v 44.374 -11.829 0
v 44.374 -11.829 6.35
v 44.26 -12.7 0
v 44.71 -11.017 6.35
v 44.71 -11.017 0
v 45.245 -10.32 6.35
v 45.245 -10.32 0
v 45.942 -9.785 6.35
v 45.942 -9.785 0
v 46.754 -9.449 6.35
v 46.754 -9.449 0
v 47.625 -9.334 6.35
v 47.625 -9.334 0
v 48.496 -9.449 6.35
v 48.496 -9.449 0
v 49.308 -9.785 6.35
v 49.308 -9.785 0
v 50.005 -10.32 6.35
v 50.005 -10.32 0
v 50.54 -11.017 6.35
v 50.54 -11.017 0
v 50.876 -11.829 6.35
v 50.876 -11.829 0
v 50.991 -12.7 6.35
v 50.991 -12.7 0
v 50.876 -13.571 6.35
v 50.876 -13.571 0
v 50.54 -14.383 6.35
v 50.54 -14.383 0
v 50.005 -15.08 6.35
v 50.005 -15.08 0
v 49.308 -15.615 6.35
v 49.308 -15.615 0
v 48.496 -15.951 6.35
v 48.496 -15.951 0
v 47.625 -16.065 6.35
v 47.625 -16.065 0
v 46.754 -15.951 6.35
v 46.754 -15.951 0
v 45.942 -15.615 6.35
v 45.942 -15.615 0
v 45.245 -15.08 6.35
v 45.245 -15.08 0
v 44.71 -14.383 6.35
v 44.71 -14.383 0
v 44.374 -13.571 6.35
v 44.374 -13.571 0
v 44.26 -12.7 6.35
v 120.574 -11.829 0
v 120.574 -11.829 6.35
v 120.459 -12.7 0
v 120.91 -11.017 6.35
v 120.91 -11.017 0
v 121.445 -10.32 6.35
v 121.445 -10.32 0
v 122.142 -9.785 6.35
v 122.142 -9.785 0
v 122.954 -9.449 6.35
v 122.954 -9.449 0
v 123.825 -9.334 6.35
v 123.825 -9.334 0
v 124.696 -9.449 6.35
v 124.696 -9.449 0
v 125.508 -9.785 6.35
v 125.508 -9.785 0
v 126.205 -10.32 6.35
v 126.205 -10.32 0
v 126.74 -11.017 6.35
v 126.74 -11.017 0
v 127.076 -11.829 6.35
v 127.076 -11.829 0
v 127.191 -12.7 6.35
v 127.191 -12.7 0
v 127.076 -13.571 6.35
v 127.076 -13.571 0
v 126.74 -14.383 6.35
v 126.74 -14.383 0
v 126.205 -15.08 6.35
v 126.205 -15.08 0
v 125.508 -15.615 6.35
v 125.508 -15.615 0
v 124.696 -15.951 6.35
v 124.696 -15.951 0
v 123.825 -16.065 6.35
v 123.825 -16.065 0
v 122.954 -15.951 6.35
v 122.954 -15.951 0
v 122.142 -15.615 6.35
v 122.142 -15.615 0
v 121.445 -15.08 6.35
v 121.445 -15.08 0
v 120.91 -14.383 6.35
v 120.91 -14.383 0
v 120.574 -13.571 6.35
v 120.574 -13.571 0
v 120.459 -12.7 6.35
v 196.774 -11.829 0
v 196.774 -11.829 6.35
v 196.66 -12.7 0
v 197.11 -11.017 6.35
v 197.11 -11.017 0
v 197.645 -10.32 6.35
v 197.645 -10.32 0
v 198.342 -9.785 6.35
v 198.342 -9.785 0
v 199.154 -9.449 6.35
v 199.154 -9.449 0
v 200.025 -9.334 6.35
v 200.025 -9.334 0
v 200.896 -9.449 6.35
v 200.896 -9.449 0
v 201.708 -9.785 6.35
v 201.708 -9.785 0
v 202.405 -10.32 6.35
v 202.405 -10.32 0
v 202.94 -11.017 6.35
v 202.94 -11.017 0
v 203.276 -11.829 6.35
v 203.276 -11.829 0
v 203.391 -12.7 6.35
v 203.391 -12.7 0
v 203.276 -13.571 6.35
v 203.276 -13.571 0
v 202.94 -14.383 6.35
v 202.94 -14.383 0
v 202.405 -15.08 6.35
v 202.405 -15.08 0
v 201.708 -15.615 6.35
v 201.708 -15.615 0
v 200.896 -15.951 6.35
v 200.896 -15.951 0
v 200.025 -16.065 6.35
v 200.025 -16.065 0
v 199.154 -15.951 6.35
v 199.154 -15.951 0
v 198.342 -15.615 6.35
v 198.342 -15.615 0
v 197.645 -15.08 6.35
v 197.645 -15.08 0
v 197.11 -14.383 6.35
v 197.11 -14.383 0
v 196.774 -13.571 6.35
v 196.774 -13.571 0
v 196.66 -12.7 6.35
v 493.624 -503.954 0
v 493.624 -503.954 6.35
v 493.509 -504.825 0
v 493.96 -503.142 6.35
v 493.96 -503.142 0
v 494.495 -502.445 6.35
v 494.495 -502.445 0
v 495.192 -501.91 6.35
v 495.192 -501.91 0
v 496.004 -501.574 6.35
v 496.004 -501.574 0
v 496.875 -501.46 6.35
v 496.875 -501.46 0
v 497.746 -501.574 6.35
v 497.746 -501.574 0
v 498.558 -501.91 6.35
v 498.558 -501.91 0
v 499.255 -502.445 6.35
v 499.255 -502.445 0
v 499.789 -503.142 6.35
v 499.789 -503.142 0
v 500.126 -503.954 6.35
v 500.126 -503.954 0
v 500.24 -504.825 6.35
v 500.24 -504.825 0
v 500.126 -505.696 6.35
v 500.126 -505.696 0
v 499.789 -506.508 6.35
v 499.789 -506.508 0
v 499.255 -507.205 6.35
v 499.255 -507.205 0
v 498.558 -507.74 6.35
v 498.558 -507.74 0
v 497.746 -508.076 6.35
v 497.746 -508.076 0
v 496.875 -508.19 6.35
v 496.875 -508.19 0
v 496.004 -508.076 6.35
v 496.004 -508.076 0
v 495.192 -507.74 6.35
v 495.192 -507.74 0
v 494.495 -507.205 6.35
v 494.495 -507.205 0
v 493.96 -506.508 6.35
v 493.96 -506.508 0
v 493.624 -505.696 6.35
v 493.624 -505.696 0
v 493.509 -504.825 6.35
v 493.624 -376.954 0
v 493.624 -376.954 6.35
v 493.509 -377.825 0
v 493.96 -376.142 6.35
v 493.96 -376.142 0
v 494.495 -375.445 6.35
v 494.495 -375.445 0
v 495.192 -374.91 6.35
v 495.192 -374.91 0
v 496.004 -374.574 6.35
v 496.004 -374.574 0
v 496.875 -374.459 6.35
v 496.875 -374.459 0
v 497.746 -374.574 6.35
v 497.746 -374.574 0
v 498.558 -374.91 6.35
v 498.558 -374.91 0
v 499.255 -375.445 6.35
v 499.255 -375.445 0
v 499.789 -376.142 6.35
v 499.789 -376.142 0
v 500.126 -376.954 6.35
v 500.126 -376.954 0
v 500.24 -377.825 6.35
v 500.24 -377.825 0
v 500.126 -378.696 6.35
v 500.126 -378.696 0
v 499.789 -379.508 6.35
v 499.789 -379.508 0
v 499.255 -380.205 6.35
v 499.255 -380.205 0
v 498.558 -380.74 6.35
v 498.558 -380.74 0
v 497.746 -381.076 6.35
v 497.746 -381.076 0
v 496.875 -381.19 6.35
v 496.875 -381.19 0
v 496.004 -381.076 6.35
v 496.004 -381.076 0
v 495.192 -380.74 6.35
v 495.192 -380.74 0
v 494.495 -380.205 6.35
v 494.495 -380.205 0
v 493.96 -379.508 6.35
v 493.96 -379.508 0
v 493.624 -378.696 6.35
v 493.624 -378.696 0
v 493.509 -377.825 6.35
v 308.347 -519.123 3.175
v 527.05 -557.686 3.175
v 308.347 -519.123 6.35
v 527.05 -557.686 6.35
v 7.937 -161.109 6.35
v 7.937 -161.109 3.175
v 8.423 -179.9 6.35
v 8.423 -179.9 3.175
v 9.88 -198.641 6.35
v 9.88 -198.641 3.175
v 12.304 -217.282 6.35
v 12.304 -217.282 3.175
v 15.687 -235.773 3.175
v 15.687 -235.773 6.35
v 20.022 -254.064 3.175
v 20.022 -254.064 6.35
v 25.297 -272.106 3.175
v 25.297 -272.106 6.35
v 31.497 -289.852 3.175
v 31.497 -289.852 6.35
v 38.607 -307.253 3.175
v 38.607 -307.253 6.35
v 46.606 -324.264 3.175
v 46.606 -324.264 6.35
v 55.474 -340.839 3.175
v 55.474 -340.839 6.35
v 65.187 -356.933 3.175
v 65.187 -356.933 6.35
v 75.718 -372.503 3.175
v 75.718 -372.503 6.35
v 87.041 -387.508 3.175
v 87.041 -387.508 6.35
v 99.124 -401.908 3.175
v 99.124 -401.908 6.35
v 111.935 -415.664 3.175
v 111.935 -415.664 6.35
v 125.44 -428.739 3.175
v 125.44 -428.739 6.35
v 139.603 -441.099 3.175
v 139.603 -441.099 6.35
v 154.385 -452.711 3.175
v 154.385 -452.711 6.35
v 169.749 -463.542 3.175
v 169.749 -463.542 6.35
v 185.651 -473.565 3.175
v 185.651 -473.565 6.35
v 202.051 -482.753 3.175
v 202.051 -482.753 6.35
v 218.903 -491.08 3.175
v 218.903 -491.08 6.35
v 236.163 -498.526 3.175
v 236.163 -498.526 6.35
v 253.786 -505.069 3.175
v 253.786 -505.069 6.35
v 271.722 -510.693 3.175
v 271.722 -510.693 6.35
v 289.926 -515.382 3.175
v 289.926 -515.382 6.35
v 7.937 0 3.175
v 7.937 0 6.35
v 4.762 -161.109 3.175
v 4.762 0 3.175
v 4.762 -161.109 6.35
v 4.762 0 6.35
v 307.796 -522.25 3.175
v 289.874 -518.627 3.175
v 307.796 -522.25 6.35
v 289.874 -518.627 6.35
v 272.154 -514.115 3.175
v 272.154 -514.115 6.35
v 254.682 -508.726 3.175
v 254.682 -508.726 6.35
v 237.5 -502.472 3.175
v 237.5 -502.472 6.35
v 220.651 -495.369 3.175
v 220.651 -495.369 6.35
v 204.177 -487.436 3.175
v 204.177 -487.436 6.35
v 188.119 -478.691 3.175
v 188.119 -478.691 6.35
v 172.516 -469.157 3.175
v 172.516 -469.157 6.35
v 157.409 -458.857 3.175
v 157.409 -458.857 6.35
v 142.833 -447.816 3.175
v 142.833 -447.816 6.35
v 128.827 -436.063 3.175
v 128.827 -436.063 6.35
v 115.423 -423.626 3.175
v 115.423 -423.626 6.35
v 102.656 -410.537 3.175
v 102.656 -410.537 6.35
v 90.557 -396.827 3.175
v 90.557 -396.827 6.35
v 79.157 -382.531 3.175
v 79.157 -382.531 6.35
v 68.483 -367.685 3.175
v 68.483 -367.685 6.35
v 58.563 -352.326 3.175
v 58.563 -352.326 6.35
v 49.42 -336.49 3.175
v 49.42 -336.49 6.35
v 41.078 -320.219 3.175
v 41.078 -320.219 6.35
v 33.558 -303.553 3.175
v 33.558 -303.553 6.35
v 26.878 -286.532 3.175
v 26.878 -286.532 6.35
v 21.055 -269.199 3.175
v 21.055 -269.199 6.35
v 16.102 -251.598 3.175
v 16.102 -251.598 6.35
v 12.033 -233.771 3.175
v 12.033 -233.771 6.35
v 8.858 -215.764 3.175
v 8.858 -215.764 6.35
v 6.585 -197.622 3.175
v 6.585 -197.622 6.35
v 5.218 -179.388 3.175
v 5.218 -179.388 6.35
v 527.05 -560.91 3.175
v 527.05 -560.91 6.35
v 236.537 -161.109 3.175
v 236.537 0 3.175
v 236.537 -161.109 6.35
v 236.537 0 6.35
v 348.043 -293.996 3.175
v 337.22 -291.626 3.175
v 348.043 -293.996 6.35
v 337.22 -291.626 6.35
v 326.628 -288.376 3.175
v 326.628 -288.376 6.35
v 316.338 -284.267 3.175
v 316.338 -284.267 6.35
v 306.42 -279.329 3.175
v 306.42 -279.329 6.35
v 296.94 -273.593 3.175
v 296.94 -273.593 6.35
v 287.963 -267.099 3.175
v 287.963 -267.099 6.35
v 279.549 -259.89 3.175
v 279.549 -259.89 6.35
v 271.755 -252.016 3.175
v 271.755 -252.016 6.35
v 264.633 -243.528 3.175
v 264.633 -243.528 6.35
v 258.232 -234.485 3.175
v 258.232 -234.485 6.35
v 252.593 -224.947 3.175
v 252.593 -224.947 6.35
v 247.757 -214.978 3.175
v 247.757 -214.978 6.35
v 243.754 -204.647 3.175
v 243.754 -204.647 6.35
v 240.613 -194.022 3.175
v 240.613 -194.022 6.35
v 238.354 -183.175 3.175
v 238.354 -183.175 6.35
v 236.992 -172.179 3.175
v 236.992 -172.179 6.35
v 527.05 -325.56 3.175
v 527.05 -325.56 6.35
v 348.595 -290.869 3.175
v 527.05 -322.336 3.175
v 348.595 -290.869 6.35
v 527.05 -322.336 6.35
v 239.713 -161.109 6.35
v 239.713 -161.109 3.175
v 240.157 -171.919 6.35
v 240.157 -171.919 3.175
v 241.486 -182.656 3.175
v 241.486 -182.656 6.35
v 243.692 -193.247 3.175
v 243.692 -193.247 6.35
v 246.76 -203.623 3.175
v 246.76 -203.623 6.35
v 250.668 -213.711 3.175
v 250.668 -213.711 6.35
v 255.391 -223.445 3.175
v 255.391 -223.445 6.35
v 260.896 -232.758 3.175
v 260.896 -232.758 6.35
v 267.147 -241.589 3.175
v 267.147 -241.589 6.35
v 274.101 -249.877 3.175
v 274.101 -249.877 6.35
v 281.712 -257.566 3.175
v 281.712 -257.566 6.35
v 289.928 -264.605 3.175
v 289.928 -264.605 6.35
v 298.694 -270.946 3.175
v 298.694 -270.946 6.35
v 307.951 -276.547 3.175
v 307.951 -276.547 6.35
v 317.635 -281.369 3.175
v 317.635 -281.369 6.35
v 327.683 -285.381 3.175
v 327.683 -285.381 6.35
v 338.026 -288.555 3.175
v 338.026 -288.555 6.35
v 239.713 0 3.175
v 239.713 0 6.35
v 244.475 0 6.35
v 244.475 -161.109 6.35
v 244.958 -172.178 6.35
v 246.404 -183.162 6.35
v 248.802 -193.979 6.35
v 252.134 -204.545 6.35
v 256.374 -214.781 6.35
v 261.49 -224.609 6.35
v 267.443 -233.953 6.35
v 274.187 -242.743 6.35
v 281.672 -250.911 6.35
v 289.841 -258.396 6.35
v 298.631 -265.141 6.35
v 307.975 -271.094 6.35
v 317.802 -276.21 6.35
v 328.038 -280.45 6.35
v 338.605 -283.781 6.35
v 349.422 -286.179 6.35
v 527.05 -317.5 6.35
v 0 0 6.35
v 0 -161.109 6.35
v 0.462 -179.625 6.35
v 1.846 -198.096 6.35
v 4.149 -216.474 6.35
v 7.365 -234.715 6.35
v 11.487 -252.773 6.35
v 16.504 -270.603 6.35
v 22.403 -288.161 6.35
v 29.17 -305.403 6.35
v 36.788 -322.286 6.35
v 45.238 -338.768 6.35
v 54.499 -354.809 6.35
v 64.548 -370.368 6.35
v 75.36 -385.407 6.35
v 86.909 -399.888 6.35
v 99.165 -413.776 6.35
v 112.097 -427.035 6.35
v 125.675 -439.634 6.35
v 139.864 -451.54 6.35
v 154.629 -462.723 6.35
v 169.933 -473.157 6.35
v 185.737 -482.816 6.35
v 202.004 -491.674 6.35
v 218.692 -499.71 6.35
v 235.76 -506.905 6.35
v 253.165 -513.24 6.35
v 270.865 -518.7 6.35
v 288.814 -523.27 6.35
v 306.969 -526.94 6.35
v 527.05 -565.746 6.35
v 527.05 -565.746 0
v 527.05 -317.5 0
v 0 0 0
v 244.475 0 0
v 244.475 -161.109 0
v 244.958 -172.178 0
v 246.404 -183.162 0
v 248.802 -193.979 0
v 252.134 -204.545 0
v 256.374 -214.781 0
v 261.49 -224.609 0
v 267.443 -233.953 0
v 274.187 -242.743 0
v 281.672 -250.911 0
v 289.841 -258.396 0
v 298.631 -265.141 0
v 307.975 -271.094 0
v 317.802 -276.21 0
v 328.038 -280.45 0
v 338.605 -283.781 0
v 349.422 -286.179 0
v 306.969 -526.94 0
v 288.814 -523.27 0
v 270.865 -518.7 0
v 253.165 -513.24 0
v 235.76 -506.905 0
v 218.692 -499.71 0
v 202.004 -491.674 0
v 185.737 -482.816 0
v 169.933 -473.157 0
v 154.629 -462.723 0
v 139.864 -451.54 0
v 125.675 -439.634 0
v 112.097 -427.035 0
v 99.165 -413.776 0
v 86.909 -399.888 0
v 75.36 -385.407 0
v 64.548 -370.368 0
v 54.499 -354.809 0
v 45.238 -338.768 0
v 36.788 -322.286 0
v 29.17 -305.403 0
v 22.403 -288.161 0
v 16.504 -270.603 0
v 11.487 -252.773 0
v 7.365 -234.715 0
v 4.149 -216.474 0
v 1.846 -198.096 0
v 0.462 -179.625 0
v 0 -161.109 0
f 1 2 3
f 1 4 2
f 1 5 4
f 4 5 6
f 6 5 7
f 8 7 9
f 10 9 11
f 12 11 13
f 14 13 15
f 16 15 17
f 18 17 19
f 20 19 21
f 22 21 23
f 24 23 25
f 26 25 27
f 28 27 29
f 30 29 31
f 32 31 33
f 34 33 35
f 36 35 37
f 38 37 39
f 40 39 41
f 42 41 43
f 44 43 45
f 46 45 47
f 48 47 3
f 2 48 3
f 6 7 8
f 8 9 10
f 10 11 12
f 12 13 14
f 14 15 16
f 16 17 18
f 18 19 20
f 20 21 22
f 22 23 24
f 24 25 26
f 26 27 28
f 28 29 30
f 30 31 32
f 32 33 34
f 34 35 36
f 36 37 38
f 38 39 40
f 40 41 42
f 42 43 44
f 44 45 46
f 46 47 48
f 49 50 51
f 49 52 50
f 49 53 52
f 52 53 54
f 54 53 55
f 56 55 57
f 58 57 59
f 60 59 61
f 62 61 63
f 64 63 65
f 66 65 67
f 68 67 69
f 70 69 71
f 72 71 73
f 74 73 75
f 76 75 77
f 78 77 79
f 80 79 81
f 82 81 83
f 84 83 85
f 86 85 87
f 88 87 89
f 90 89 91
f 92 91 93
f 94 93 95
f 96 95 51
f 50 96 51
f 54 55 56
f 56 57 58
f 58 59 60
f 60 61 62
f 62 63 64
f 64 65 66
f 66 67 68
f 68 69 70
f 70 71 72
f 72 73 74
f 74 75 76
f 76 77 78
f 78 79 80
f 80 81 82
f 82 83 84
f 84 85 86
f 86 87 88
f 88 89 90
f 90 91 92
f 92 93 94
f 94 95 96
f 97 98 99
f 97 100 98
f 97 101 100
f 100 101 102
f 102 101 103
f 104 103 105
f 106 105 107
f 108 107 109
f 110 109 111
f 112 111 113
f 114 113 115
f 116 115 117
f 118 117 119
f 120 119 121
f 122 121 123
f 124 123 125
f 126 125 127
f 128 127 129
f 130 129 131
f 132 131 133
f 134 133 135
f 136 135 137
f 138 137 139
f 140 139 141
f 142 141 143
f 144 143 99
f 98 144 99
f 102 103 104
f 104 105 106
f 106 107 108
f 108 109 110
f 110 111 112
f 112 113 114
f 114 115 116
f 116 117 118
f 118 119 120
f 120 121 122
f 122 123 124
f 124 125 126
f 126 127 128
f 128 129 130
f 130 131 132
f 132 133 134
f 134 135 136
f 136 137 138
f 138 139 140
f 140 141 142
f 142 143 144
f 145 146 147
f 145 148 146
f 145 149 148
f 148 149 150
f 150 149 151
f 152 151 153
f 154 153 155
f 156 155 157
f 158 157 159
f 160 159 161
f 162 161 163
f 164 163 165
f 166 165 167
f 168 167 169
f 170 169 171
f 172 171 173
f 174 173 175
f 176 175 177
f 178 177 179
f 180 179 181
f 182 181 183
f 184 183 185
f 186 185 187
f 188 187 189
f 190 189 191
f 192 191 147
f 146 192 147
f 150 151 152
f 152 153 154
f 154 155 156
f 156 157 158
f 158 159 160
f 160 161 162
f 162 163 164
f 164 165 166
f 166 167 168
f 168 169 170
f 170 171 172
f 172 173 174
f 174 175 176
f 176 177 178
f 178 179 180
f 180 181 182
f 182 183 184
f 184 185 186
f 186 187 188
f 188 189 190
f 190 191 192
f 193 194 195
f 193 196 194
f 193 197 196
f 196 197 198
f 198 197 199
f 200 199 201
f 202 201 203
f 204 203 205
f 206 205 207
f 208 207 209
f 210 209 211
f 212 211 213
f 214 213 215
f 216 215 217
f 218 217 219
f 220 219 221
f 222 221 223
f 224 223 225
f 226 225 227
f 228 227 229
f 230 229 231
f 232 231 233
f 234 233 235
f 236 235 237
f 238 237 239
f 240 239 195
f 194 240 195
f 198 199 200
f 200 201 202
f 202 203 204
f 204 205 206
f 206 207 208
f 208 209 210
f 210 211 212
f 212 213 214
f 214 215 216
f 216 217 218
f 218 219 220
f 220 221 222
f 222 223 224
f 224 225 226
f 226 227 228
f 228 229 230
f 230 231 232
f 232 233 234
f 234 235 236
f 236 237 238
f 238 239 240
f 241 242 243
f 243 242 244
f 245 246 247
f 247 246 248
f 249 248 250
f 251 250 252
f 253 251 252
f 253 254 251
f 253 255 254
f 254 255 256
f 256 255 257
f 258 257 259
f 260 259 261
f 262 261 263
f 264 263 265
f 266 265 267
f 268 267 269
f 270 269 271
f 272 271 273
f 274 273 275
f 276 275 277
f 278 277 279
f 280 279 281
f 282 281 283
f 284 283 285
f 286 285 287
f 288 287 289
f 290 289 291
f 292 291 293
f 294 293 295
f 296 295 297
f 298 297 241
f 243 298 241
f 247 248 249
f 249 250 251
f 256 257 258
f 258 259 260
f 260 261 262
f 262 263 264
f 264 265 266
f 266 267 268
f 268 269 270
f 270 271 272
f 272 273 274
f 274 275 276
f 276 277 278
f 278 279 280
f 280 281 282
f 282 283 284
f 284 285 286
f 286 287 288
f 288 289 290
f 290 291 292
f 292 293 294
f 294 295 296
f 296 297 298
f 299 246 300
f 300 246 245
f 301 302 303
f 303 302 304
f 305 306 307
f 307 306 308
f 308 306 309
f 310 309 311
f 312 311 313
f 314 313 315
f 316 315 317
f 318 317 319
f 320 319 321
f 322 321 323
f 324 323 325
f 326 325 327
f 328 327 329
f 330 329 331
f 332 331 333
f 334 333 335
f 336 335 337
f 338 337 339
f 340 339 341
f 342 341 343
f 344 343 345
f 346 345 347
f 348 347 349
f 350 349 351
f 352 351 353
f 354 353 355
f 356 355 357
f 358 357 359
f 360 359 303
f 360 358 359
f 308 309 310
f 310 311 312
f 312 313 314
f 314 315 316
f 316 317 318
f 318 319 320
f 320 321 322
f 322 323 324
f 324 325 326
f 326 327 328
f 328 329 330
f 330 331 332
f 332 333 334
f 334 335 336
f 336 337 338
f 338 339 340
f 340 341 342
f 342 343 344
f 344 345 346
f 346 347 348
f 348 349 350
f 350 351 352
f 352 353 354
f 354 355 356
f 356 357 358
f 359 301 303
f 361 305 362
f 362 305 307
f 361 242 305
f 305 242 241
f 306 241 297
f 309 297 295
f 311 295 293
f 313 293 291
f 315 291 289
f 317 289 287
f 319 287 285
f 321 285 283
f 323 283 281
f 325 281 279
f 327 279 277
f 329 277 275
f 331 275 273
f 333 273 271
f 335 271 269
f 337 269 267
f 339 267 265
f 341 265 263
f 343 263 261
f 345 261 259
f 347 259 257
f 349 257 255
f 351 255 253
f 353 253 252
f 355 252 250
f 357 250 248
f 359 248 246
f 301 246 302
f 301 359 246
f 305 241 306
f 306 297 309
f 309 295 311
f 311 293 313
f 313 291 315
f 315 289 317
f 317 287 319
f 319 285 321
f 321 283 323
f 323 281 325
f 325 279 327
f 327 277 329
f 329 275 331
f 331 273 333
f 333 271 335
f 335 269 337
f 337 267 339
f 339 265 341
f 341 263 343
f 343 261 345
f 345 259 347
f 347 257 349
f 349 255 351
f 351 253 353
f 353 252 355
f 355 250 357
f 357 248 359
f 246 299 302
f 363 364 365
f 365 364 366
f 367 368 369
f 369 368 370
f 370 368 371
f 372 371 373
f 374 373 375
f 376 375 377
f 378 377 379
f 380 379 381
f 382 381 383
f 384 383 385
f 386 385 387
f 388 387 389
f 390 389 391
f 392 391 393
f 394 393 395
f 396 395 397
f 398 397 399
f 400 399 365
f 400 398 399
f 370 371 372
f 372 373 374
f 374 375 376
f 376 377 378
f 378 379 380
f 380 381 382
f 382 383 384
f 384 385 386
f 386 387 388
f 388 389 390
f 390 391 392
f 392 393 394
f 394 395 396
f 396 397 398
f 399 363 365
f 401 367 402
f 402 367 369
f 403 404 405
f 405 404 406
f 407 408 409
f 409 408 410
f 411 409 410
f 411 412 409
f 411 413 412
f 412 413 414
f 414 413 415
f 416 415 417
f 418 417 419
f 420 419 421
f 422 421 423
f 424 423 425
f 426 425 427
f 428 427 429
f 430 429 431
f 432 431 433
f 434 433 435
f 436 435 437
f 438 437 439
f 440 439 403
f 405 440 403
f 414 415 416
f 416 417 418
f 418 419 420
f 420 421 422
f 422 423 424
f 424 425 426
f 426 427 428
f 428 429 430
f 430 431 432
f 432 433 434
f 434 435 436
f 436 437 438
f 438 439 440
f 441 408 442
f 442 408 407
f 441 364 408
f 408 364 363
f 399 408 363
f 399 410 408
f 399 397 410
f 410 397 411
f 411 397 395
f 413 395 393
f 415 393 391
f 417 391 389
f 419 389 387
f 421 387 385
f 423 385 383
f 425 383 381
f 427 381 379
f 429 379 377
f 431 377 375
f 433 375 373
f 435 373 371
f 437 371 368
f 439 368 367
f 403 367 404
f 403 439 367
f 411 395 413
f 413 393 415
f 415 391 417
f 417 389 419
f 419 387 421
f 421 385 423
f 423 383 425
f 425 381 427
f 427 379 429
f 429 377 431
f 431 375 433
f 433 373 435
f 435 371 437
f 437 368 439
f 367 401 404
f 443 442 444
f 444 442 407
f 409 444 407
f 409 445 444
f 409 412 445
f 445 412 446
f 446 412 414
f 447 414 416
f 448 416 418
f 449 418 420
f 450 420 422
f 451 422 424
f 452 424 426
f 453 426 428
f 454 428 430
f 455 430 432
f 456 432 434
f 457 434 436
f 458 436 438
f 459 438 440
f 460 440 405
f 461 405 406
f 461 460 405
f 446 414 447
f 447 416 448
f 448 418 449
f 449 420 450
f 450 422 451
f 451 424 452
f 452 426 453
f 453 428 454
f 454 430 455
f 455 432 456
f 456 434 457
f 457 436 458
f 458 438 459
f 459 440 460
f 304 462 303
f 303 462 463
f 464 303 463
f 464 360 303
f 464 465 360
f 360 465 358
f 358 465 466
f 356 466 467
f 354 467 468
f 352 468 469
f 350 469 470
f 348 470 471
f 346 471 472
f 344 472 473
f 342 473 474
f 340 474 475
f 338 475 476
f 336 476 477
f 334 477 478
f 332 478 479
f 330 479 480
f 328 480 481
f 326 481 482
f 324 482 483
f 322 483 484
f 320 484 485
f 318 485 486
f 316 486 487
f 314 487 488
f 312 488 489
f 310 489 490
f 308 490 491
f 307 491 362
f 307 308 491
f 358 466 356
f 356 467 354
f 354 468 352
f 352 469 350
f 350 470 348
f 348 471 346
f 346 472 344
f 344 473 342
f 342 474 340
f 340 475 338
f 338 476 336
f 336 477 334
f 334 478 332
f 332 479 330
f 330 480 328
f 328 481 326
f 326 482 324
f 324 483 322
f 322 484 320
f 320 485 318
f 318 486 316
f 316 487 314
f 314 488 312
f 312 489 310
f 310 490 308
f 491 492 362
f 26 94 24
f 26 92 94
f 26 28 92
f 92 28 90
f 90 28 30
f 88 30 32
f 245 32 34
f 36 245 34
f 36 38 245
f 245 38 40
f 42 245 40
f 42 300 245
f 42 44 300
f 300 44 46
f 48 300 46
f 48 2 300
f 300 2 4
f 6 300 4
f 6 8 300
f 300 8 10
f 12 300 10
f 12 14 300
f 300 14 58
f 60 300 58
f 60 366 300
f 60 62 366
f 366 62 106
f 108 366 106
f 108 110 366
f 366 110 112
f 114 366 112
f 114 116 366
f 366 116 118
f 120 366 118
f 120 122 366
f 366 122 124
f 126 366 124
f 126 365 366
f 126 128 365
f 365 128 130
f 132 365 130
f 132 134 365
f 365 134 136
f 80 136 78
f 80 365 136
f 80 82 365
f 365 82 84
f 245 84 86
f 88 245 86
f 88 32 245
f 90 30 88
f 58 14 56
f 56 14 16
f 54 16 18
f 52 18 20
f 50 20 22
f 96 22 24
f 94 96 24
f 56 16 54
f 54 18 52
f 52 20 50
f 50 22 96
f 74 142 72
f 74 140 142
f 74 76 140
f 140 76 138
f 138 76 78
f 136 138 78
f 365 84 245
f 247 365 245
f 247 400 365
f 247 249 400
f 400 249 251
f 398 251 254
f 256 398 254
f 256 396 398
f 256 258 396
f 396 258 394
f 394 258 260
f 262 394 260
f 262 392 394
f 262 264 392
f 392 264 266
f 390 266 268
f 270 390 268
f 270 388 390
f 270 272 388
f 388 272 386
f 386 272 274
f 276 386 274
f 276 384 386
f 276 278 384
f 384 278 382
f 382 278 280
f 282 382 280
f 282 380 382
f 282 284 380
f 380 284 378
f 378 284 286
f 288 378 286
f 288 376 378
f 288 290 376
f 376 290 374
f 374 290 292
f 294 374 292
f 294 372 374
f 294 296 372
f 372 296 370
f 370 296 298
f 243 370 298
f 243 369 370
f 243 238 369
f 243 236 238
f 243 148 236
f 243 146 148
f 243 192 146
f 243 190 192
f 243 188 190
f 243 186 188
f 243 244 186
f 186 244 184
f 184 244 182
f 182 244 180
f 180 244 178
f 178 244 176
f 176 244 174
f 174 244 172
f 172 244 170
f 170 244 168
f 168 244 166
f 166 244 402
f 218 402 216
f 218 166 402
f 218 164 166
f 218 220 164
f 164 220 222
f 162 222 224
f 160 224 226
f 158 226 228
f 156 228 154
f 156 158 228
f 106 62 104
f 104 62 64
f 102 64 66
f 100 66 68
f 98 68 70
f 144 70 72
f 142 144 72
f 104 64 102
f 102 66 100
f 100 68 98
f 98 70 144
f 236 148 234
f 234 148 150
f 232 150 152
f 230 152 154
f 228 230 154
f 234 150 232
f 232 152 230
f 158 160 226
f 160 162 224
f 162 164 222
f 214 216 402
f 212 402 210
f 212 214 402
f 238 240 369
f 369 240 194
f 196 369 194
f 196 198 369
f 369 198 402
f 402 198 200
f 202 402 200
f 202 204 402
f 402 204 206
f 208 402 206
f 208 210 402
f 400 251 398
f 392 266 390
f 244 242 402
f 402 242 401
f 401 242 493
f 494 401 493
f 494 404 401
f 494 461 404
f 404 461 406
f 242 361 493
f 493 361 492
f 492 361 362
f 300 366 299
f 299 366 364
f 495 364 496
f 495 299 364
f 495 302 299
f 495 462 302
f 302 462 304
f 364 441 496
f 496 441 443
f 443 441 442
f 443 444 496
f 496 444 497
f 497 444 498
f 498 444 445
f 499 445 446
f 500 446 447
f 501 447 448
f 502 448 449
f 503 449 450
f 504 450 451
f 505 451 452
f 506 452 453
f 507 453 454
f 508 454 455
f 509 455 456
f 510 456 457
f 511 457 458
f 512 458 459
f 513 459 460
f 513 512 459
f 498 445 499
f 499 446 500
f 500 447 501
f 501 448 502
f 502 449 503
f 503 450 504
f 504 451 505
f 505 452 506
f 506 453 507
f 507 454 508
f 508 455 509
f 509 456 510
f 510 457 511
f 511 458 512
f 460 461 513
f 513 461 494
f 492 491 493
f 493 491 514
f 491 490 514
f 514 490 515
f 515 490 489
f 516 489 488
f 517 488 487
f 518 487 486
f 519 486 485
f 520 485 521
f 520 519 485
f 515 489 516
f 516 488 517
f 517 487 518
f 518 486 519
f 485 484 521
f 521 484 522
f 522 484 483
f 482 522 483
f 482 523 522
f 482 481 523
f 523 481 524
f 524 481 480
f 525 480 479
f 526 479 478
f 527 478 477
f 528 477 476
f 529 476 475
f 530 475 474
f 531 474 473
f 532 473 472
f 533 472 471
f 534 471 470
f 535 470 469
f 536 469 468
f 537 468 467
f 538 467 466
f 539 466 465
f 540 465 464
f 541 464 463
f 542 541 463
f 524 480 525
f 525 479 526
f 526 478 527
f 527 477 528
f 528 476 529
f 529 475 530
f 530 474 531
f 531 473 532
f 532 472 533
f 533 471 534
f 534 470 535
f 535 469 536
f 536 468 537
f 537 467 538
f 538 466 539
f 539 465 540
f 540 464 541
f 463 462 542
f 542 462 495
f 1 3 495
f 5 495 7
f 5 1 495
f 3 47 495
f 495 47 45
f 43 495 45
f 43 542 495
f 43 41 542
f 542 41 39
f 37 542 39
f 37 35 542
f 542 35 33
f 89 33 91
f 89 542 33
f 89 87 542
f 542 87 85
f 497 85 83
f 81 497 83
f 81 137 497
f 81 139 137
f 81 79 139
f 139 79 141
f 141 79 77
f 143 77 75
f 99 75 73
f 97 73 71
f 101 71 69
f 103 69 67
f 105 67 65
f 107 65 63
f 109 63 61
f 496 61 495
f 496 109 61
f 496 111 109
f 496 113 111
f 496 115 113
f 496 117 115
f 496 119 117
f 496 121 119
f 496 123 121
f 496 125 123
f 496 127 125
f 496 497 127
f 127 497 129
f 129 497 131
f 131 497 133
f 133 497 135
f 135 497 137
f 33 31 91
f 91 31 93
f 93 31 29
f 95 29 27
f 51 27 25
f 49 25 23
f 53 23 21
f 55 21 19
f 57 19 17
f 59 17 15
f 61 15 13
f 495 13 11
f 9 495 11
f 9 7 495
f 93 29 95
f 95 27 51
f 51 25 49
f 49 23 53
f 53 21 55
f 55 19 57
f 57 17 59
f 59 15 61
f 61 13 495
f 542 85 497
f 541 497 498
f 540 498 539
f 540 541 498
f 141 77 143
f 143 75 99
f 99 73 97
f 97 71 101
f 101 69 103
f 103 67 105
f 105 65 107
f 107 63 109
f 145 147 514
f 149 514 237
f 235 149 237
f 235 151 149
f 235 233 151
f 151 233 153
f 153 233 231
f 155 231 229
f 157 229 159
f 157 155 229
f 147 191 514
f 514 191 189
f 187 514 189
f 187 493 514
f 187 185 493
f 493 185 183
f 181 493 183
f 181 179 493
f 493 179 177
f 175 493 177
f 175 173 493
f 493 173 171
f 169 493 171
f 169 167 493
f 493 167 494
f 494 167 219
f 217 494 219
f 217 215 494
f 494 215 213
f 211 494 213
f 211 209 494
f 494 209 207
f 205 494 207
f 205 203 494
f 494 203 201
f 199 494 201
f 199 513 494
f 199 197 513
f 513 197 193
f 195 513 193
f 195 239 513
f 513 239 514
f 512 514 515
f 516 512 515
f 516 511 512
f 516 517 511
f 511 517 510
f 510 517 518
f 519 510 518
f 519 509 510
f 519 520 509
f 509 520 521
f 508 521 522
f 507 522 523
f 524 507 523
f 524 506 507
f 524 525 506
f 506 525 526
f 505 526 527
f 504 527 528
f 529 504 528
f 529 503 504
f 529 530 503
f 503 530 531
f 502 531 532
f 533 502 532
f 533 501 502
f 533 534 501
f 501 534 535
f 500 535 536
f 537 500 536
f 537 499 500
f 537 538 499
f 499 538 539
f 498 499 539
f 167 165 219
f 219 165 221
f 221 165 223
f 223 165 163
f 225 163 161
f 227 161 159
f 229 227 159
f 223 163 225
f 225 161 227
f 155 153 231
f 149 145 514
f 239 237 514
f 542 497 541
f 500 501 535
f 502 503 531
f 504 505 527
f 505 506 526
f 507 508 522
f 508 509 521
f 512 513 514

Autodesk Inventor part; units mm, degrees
ref_plane "YZ Plane" through (0, 0, 0) normal (1, 0, 0) x (0, 1, 0)
ref_plane "XZ Plane" through (0, 0, 0) normal (0, 1, 0) x (-1, 0, 0)
ref_plane "XY Plane" through (0, 0, 0) normal (0, 0, 1) x (1, 0, 0)
sketch "Sketch1" plane through (0, 0, 0) normal (0, 0, 1) x (1, 0, 0)
  line L0 (0, 0) -> (0, -161.1088)
  line L1 (0, 0) -> (244.475, 0)
  line L2 (244.475, 0) -> (244.475, -161.1088)
  line L3 (349.4217, -286.1793) -> (527.05, -317.5)
  line L4 (527.05, -317.5) -> (527.05, -565.7464)
  line L5 (527.05, -565.7464) -> (306.969, -526.9402)
  arc A0 (244.475, -161.1088) -> (349.4217, -286.1793) centre (371.475, -161.1088) ccw
  arc A1 (0, -161.1088) -> (306.969, -526.9402) centre (371.475, -161.1088) ccw
  dimension "d0" = 244.475
  dimension "d1" = 244.475
  dimension "d2" = 100
  dimension "d3" = 127
  dimension "d4" = 371.475
  dimension "d5" = 317.5
  dimension "d6" = 527.05
extrude "Extrusion1" add sketch "Sketch1" along normal blind 6.35
sketch "Sketch2" plane through (0, 0, 6.35) normal (0, 0, 1) x (1, 0, 0)
  line L0 (0, 0) -> (244.475, 0) projected
  line L1 (0, -161.1088) -> (0, 0) projected
  arc A0 (0, -161.1088) -> (306.969, -526.9402) centre (371.475, -161.1088) ccw projected
  line L2 (527.05, -565.7464) -> (306.969, -526.9402) projected
  line L3 (527.05, -317.5) -> (527.05, -565.7464) projected
  line L4 (349.4217, -286.1793) -> (527.05, -317.5) projected
  arc A1 (244.475, -161.1088) -> (349.4217, -286.1793) centre (371.475, -161.1088) ccw projected
  line L5 (244.475, 0) -> (244.475, -161.1088) projected
  arc A2 (239.7125, -161.1088) -> (348.5947, -290.8695) centre (371.475, -161.1088) ccw
  line L6 (348.5947, -290.8695) -> (527.05, -322.336)
  line L7 (527.05, -560.9105) -> (307.796, -522.2501)
  arc A3 (4.7625, -161.1088) -> (307.796, -522.2501) centre (371.475, -161.1088) ccw
  line L8 (4.7625, -161.1088) -> (4.7625, 0)
  line L9 (239.7125, 0) -> (239.7125, -161.1088)
  line L10 (7.9375, 0) -> (7.9375, -161.1088)
  arc A4 (7.9375, -161.1088) -> (308.3474, -519.1233) centre (371.475, -161.1088) ccw
  line L11 (308.3474, -519.1233) -> (527.05, -557.6865)
  line L12 (236.5375, 0) -> (236.5375, -161.1088)
  arc A5 (236.5375, -161.1088) -> (348.0433, -293.9962) centre (371.475, -161.1088) ccw
  line L13 (348.0433, -293.9962) -> (527.05, -325.5599)
  line L14 (4.7625, 0) -> (7.9375, 0)
  line L15 (239.7125, 0) -> (236.5375, 0)
  line L16 (527.05, -322.336) -> (527.05, -325.5599)
  line L17 (527.05, -560.9105) -> (527.05, -557.6865)
  dimension "d9" = 4.7625
  dimension "d10" = 4.7625
  dimension "d11" = 4.7625
  dimension "d12" = 4.7625
  dimension "d13" = 4.7625
  dimension "d14" = 4.7625
  dimension "d15" = 3.175
  dimension "d16" = 3.175
  dimension "d17" = 3.175
  dimension "d18" = 3.175
extrude "Extrusion2" cut sketch "Sketch2" against normal blind 3.175 contours L0 L10 A4 L11 L3 L7 A3 L8 | L0 L9 A2 L6 L3 L13 A5 L12
hole "Hole1" at (496.8748, -377.825, 6.35) direction (0, 0, -1) diameter 6.731 depth 25.4 tip angle 118
pattern_linear "Rectangular Pattern1" count 2 spacing 127 along (0, -1, 0) of "Hole1"
hole "Hole2" at (200.025, -12.7, 6.35) direction (0, 0, -1) diameter 6.731 depth 25.4 tip angle 118
pattern_linear "Rectangular Pattern2" count 3 spacing 76.2 along (-1, 0, 0) of "Hole2"
equation "\"d1\" = d0"
equation "\"d4\" = d3 + d0"
equation "\"d9\" = d10"
equation "\"d11\" = d10"
equation "\"d12\" = d10"
equation "\"d13\" = d10"
equation "\"d14\" = d10"
properties part number "GE-12070-01"
